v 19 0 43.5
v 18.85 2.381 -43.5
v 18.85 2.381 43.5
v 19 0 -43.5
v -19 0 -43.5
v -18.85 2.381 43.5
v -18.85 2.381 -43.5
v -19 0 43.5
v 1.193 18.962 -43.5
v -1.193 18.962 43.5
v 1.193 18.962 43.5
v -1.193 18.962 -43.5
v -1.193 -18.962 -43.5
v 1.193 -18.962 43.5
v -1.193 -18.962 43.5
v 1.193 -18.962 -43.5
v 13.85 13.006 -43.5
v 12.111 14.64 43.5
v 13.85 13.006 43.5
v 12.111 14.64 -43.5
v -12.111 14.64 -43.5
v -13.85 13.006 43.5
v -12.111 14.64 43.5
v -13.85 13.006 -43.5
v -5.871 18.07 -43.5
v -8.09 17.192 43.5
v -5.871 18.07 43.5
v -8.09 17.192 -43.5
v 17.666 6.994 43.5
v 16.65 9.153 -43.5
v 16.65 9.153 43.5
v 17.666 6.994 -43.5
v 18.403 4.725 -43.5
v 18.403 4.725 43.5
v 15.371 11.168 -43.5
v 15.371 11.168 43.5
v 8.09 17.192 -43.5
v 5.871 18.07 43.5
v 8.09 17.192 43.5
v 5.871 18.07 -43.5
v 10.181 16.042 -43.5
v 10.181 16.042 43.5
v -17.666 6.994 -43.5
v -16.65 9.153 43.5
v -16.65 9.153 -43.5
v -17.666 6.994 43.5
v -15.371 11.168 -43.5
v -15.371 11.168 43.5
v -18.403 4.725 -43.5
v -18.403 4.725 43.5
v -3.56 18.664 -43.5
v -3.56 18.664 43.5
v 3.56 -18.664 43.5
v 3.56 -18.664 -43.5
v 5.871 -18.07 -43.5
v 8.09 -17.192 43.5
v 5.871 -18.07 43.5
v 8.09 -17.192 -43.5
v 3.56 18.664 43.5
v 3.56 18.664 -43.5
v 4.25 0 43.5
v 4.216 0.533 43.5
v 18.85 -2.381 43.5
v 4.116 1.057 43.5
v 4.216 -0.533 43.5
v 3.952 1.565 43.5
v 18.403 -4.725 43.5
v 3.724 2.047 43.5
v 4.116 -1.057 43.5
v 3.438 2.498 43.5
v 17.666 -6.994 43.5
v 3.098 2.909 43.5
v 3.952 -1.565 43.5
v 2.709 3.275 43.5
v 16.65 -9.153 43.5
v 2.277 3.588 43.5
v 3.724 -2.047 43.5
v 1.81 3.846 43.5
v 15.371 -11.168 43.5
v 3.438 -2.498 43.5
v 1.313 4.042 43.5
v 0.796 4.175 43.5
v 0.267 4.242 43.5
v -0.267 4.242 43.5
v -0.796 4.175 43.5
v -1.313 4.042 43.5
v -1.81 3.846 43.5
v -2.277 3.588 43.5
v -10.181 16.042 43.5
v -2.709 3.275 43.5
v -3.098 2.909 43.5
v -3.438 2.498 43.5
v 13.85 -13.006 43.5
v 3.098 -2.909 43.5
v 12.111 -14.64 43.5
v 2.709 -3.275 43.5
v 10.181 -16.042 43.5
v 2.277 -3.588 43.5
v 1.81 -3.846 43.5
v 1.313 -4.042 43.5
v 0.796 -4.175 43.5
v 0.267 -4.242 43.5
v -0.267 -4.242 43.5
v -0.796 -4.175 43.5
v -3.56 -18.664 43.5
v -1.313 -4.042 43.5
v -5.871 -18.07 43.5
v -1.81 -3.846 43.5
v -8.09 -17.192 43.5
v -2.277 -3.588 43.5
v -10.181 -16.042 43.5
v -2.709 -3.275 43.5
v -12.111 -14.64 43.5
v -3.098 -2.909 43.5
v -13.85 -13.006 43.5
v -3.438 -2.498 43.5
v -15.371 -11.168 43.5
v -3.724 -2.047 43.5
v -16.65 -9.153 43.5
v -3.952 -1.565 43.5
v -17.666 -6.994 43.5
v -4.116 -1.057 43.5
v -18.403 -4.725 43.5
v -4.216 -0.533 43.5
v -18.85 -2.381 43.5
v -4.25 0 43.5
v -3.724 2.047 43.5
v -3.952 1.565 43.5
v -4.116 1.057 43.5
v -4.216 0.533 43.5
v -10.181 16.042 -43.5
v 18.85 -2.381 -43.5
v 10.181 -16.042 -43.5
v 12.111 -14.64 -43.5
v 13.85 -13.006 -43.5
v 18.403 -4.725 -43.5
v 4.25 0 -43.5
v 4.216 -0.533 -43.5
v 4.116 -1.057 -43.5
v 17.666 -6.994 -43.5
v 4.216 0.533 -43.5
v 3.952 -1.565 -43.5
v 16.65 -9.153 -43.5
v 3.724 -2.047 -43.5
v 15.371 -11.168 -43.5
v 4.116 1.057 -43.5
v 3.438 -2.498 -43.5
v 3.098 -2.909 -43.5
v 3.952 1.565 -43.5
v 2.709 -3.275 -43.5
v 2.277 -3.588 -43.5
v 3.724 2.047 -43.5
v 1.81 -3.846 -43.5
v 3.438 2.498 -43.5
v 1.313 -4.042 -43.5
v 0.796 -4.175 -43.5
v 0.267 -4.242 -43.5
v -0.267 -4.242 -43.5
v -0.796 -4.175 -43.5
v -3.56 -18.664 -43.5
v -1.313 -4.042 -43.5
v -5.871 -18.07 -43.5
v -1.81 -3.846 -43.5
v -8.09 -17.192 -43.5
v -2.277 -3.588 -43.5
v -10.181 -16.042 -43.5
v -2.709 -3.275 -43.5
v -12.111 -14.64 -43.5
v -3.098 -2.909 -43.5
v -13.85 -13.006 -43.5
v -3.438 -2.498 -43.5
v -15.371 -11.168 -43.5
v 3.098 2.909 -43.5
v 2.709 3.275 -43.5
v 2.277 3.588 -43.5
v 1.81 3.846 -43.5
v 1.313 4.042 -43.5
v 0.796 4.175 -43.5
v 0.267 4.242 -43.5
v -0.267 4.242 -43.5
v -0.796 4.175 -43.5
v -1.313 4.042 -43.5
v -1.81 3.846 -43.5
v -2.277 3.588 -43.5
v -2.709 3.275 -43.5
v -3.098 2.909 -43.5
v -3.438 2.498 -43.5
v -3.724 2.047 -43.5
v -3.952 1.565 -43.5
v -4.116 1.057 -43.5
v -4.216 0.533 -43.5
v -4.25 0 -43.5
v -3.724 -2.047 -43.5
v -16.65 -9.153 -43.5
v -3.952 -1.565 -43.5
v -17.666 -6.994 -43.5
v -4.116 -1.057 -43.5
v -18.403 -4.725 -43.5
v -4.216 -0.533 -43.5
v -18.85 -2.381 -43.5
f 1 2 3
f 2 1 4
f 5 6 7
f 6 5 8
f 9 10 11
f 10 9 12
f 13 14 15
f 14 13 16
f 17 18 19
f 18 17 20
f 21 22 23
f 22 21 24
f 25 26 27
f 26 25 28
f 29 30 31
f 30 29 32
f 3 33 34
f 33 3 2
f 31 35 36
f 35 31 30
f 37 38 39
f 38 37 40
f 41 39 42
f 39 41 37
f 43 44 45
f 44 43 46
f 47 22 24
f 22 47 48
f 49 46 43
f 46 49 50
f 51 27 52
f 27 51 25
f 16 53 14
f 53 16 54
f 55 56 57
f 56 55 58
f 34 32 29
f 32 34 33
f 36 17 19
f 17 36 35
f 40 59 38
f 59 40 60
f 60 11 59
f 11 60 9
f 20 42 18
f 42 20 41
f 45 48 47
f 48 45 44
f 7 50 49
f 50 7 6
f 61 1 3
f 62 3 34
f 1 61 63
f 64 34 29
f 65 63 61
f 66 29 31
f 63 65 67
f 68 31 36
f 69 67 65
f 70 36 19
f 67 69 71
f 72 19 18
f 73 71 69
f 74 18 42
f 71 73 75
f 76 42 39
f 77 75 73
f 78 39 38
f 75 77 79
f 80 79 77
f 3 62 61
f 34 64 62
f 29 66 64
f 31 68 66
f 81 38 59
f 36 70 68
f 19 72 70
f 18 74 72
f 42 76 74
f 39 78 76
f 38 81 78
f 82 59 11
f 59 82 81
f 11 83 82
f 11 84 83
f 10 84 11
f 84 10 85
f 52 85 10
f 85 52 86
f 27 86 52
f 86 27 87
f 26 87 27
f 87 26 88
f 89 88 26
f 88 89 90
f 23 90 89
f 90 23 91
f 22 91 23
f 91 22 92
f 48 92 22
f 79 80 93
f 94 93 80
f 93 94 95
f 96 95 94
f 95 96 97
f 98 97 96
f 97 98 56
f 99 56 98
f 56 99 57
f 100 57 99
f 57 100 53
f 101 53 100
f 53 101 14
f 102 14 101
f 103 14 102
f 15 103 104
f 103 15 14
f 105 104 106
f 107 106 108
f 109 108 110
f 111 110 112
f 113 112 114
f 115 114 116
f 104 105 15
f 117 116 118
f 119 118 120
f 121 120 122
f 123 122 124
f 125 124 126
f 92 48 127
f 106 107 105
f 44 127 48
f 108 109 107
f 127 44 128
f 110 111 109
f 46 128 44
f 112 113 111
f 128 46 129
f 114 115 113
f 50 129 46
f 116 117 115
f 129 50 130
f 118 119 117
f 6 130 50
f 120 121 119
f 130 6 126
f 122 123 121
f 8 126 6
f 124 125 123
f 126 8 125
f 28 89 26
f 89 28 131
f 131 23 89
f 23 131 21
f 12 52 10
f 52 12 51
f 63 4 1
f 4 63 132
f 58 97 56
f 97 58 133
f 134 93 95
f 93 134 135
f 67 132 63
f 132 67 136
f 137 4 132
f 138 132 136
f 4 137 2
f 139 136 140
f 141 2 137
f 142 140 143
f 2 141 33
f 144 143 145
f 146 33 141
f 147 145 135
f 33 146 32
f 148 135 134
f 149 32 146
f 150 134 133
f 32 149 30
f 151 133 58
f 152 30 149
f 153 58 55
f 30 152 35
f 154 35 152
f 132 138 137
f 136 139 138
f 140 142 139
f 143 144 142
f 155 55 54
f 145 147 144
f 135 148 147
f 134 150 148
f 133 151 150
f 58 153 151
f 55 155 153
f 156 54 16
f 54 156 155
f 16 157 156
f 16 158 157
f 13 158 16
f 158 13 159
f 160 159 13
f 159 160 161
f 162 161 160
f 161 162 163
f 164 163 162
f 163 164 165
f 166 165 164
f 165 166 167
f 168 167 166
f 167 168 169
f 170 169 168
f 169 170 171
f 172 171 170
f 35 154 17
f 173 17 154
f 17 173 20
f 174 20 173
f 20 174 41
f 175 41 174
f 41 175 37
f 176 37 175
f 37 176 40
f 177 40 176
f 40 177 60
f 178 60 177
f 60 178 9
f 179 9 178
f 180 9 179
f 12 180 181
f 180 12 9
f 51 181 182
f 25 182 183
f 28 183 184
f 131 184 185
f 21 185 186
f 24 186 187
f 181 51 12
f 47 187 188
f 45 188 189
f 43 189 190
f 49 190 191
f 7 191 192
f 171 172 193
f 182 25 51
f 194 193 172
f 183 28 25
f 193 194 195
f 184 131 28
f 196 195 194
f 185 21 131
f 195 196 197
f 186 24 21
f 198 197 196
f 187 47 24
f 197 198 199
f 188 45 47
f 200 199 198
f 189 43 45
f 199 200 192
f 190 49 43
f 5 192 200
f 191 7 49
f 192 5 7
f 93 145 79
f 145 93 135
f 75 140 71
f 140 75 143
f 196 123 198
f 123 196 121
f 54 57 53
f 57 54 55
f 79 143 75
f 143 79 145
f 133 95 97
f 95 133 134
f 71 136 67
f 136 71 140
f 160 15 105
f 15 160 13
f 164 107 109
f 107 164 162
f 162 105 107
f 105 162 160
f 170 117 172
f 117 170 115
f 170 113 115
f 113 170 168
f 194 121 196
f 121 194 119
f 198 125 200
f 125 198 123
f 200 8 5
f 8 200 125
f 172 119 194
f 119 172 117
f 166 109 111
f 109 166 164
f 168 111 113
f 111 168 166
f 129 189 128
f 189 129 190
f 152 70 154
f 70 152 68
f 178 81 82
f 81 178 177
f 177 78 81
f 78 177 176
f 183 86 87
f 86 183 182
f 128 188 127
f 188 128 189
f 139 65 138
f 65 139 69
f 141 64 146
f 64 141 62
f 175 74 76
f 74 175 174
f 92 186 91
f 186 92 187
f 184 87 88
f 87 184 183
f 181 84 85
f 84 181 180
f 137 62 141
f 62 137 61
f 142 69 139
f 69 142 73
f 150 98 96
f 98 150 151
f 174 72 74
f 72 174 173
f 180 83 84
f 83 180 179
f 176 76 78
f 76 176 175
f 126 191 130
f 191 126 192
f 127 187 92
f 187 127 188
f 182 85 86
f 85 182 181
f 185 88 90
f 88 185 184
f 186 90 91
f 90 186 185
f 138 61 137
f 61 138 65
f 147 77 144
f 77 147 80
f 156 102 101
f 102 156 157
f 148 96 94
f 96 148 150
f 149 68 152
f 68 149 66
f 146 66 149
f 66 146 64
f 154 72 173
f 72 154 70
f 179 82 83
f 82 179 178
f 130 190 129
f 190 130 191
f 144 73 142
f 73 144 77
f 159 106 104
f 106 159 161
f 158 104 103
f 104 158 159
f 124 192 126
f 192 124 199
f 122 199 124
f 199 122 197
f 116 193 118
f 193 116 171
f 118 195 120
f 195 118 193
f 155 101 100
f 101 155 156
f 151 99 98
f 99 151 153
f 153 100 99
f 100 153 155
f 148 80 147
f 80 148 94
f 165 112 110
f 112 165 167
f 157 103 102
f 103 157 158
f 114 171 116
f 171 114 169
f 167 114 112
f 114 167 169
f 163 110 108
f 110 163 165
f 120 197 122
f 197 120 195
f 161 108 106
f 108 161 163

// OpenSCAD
$fn = 50;


difference() {
	union() {
		translate(v = [0, 0, -43.5000000000]) {
			cylinder(h = 87, r = 19.0000000000);
		}
	}
	union() {
		translate(v = [0, 0, -100.0000000000]) {
			cylinder(h = 200, r = 4.2500000000);
		}
	}
}
